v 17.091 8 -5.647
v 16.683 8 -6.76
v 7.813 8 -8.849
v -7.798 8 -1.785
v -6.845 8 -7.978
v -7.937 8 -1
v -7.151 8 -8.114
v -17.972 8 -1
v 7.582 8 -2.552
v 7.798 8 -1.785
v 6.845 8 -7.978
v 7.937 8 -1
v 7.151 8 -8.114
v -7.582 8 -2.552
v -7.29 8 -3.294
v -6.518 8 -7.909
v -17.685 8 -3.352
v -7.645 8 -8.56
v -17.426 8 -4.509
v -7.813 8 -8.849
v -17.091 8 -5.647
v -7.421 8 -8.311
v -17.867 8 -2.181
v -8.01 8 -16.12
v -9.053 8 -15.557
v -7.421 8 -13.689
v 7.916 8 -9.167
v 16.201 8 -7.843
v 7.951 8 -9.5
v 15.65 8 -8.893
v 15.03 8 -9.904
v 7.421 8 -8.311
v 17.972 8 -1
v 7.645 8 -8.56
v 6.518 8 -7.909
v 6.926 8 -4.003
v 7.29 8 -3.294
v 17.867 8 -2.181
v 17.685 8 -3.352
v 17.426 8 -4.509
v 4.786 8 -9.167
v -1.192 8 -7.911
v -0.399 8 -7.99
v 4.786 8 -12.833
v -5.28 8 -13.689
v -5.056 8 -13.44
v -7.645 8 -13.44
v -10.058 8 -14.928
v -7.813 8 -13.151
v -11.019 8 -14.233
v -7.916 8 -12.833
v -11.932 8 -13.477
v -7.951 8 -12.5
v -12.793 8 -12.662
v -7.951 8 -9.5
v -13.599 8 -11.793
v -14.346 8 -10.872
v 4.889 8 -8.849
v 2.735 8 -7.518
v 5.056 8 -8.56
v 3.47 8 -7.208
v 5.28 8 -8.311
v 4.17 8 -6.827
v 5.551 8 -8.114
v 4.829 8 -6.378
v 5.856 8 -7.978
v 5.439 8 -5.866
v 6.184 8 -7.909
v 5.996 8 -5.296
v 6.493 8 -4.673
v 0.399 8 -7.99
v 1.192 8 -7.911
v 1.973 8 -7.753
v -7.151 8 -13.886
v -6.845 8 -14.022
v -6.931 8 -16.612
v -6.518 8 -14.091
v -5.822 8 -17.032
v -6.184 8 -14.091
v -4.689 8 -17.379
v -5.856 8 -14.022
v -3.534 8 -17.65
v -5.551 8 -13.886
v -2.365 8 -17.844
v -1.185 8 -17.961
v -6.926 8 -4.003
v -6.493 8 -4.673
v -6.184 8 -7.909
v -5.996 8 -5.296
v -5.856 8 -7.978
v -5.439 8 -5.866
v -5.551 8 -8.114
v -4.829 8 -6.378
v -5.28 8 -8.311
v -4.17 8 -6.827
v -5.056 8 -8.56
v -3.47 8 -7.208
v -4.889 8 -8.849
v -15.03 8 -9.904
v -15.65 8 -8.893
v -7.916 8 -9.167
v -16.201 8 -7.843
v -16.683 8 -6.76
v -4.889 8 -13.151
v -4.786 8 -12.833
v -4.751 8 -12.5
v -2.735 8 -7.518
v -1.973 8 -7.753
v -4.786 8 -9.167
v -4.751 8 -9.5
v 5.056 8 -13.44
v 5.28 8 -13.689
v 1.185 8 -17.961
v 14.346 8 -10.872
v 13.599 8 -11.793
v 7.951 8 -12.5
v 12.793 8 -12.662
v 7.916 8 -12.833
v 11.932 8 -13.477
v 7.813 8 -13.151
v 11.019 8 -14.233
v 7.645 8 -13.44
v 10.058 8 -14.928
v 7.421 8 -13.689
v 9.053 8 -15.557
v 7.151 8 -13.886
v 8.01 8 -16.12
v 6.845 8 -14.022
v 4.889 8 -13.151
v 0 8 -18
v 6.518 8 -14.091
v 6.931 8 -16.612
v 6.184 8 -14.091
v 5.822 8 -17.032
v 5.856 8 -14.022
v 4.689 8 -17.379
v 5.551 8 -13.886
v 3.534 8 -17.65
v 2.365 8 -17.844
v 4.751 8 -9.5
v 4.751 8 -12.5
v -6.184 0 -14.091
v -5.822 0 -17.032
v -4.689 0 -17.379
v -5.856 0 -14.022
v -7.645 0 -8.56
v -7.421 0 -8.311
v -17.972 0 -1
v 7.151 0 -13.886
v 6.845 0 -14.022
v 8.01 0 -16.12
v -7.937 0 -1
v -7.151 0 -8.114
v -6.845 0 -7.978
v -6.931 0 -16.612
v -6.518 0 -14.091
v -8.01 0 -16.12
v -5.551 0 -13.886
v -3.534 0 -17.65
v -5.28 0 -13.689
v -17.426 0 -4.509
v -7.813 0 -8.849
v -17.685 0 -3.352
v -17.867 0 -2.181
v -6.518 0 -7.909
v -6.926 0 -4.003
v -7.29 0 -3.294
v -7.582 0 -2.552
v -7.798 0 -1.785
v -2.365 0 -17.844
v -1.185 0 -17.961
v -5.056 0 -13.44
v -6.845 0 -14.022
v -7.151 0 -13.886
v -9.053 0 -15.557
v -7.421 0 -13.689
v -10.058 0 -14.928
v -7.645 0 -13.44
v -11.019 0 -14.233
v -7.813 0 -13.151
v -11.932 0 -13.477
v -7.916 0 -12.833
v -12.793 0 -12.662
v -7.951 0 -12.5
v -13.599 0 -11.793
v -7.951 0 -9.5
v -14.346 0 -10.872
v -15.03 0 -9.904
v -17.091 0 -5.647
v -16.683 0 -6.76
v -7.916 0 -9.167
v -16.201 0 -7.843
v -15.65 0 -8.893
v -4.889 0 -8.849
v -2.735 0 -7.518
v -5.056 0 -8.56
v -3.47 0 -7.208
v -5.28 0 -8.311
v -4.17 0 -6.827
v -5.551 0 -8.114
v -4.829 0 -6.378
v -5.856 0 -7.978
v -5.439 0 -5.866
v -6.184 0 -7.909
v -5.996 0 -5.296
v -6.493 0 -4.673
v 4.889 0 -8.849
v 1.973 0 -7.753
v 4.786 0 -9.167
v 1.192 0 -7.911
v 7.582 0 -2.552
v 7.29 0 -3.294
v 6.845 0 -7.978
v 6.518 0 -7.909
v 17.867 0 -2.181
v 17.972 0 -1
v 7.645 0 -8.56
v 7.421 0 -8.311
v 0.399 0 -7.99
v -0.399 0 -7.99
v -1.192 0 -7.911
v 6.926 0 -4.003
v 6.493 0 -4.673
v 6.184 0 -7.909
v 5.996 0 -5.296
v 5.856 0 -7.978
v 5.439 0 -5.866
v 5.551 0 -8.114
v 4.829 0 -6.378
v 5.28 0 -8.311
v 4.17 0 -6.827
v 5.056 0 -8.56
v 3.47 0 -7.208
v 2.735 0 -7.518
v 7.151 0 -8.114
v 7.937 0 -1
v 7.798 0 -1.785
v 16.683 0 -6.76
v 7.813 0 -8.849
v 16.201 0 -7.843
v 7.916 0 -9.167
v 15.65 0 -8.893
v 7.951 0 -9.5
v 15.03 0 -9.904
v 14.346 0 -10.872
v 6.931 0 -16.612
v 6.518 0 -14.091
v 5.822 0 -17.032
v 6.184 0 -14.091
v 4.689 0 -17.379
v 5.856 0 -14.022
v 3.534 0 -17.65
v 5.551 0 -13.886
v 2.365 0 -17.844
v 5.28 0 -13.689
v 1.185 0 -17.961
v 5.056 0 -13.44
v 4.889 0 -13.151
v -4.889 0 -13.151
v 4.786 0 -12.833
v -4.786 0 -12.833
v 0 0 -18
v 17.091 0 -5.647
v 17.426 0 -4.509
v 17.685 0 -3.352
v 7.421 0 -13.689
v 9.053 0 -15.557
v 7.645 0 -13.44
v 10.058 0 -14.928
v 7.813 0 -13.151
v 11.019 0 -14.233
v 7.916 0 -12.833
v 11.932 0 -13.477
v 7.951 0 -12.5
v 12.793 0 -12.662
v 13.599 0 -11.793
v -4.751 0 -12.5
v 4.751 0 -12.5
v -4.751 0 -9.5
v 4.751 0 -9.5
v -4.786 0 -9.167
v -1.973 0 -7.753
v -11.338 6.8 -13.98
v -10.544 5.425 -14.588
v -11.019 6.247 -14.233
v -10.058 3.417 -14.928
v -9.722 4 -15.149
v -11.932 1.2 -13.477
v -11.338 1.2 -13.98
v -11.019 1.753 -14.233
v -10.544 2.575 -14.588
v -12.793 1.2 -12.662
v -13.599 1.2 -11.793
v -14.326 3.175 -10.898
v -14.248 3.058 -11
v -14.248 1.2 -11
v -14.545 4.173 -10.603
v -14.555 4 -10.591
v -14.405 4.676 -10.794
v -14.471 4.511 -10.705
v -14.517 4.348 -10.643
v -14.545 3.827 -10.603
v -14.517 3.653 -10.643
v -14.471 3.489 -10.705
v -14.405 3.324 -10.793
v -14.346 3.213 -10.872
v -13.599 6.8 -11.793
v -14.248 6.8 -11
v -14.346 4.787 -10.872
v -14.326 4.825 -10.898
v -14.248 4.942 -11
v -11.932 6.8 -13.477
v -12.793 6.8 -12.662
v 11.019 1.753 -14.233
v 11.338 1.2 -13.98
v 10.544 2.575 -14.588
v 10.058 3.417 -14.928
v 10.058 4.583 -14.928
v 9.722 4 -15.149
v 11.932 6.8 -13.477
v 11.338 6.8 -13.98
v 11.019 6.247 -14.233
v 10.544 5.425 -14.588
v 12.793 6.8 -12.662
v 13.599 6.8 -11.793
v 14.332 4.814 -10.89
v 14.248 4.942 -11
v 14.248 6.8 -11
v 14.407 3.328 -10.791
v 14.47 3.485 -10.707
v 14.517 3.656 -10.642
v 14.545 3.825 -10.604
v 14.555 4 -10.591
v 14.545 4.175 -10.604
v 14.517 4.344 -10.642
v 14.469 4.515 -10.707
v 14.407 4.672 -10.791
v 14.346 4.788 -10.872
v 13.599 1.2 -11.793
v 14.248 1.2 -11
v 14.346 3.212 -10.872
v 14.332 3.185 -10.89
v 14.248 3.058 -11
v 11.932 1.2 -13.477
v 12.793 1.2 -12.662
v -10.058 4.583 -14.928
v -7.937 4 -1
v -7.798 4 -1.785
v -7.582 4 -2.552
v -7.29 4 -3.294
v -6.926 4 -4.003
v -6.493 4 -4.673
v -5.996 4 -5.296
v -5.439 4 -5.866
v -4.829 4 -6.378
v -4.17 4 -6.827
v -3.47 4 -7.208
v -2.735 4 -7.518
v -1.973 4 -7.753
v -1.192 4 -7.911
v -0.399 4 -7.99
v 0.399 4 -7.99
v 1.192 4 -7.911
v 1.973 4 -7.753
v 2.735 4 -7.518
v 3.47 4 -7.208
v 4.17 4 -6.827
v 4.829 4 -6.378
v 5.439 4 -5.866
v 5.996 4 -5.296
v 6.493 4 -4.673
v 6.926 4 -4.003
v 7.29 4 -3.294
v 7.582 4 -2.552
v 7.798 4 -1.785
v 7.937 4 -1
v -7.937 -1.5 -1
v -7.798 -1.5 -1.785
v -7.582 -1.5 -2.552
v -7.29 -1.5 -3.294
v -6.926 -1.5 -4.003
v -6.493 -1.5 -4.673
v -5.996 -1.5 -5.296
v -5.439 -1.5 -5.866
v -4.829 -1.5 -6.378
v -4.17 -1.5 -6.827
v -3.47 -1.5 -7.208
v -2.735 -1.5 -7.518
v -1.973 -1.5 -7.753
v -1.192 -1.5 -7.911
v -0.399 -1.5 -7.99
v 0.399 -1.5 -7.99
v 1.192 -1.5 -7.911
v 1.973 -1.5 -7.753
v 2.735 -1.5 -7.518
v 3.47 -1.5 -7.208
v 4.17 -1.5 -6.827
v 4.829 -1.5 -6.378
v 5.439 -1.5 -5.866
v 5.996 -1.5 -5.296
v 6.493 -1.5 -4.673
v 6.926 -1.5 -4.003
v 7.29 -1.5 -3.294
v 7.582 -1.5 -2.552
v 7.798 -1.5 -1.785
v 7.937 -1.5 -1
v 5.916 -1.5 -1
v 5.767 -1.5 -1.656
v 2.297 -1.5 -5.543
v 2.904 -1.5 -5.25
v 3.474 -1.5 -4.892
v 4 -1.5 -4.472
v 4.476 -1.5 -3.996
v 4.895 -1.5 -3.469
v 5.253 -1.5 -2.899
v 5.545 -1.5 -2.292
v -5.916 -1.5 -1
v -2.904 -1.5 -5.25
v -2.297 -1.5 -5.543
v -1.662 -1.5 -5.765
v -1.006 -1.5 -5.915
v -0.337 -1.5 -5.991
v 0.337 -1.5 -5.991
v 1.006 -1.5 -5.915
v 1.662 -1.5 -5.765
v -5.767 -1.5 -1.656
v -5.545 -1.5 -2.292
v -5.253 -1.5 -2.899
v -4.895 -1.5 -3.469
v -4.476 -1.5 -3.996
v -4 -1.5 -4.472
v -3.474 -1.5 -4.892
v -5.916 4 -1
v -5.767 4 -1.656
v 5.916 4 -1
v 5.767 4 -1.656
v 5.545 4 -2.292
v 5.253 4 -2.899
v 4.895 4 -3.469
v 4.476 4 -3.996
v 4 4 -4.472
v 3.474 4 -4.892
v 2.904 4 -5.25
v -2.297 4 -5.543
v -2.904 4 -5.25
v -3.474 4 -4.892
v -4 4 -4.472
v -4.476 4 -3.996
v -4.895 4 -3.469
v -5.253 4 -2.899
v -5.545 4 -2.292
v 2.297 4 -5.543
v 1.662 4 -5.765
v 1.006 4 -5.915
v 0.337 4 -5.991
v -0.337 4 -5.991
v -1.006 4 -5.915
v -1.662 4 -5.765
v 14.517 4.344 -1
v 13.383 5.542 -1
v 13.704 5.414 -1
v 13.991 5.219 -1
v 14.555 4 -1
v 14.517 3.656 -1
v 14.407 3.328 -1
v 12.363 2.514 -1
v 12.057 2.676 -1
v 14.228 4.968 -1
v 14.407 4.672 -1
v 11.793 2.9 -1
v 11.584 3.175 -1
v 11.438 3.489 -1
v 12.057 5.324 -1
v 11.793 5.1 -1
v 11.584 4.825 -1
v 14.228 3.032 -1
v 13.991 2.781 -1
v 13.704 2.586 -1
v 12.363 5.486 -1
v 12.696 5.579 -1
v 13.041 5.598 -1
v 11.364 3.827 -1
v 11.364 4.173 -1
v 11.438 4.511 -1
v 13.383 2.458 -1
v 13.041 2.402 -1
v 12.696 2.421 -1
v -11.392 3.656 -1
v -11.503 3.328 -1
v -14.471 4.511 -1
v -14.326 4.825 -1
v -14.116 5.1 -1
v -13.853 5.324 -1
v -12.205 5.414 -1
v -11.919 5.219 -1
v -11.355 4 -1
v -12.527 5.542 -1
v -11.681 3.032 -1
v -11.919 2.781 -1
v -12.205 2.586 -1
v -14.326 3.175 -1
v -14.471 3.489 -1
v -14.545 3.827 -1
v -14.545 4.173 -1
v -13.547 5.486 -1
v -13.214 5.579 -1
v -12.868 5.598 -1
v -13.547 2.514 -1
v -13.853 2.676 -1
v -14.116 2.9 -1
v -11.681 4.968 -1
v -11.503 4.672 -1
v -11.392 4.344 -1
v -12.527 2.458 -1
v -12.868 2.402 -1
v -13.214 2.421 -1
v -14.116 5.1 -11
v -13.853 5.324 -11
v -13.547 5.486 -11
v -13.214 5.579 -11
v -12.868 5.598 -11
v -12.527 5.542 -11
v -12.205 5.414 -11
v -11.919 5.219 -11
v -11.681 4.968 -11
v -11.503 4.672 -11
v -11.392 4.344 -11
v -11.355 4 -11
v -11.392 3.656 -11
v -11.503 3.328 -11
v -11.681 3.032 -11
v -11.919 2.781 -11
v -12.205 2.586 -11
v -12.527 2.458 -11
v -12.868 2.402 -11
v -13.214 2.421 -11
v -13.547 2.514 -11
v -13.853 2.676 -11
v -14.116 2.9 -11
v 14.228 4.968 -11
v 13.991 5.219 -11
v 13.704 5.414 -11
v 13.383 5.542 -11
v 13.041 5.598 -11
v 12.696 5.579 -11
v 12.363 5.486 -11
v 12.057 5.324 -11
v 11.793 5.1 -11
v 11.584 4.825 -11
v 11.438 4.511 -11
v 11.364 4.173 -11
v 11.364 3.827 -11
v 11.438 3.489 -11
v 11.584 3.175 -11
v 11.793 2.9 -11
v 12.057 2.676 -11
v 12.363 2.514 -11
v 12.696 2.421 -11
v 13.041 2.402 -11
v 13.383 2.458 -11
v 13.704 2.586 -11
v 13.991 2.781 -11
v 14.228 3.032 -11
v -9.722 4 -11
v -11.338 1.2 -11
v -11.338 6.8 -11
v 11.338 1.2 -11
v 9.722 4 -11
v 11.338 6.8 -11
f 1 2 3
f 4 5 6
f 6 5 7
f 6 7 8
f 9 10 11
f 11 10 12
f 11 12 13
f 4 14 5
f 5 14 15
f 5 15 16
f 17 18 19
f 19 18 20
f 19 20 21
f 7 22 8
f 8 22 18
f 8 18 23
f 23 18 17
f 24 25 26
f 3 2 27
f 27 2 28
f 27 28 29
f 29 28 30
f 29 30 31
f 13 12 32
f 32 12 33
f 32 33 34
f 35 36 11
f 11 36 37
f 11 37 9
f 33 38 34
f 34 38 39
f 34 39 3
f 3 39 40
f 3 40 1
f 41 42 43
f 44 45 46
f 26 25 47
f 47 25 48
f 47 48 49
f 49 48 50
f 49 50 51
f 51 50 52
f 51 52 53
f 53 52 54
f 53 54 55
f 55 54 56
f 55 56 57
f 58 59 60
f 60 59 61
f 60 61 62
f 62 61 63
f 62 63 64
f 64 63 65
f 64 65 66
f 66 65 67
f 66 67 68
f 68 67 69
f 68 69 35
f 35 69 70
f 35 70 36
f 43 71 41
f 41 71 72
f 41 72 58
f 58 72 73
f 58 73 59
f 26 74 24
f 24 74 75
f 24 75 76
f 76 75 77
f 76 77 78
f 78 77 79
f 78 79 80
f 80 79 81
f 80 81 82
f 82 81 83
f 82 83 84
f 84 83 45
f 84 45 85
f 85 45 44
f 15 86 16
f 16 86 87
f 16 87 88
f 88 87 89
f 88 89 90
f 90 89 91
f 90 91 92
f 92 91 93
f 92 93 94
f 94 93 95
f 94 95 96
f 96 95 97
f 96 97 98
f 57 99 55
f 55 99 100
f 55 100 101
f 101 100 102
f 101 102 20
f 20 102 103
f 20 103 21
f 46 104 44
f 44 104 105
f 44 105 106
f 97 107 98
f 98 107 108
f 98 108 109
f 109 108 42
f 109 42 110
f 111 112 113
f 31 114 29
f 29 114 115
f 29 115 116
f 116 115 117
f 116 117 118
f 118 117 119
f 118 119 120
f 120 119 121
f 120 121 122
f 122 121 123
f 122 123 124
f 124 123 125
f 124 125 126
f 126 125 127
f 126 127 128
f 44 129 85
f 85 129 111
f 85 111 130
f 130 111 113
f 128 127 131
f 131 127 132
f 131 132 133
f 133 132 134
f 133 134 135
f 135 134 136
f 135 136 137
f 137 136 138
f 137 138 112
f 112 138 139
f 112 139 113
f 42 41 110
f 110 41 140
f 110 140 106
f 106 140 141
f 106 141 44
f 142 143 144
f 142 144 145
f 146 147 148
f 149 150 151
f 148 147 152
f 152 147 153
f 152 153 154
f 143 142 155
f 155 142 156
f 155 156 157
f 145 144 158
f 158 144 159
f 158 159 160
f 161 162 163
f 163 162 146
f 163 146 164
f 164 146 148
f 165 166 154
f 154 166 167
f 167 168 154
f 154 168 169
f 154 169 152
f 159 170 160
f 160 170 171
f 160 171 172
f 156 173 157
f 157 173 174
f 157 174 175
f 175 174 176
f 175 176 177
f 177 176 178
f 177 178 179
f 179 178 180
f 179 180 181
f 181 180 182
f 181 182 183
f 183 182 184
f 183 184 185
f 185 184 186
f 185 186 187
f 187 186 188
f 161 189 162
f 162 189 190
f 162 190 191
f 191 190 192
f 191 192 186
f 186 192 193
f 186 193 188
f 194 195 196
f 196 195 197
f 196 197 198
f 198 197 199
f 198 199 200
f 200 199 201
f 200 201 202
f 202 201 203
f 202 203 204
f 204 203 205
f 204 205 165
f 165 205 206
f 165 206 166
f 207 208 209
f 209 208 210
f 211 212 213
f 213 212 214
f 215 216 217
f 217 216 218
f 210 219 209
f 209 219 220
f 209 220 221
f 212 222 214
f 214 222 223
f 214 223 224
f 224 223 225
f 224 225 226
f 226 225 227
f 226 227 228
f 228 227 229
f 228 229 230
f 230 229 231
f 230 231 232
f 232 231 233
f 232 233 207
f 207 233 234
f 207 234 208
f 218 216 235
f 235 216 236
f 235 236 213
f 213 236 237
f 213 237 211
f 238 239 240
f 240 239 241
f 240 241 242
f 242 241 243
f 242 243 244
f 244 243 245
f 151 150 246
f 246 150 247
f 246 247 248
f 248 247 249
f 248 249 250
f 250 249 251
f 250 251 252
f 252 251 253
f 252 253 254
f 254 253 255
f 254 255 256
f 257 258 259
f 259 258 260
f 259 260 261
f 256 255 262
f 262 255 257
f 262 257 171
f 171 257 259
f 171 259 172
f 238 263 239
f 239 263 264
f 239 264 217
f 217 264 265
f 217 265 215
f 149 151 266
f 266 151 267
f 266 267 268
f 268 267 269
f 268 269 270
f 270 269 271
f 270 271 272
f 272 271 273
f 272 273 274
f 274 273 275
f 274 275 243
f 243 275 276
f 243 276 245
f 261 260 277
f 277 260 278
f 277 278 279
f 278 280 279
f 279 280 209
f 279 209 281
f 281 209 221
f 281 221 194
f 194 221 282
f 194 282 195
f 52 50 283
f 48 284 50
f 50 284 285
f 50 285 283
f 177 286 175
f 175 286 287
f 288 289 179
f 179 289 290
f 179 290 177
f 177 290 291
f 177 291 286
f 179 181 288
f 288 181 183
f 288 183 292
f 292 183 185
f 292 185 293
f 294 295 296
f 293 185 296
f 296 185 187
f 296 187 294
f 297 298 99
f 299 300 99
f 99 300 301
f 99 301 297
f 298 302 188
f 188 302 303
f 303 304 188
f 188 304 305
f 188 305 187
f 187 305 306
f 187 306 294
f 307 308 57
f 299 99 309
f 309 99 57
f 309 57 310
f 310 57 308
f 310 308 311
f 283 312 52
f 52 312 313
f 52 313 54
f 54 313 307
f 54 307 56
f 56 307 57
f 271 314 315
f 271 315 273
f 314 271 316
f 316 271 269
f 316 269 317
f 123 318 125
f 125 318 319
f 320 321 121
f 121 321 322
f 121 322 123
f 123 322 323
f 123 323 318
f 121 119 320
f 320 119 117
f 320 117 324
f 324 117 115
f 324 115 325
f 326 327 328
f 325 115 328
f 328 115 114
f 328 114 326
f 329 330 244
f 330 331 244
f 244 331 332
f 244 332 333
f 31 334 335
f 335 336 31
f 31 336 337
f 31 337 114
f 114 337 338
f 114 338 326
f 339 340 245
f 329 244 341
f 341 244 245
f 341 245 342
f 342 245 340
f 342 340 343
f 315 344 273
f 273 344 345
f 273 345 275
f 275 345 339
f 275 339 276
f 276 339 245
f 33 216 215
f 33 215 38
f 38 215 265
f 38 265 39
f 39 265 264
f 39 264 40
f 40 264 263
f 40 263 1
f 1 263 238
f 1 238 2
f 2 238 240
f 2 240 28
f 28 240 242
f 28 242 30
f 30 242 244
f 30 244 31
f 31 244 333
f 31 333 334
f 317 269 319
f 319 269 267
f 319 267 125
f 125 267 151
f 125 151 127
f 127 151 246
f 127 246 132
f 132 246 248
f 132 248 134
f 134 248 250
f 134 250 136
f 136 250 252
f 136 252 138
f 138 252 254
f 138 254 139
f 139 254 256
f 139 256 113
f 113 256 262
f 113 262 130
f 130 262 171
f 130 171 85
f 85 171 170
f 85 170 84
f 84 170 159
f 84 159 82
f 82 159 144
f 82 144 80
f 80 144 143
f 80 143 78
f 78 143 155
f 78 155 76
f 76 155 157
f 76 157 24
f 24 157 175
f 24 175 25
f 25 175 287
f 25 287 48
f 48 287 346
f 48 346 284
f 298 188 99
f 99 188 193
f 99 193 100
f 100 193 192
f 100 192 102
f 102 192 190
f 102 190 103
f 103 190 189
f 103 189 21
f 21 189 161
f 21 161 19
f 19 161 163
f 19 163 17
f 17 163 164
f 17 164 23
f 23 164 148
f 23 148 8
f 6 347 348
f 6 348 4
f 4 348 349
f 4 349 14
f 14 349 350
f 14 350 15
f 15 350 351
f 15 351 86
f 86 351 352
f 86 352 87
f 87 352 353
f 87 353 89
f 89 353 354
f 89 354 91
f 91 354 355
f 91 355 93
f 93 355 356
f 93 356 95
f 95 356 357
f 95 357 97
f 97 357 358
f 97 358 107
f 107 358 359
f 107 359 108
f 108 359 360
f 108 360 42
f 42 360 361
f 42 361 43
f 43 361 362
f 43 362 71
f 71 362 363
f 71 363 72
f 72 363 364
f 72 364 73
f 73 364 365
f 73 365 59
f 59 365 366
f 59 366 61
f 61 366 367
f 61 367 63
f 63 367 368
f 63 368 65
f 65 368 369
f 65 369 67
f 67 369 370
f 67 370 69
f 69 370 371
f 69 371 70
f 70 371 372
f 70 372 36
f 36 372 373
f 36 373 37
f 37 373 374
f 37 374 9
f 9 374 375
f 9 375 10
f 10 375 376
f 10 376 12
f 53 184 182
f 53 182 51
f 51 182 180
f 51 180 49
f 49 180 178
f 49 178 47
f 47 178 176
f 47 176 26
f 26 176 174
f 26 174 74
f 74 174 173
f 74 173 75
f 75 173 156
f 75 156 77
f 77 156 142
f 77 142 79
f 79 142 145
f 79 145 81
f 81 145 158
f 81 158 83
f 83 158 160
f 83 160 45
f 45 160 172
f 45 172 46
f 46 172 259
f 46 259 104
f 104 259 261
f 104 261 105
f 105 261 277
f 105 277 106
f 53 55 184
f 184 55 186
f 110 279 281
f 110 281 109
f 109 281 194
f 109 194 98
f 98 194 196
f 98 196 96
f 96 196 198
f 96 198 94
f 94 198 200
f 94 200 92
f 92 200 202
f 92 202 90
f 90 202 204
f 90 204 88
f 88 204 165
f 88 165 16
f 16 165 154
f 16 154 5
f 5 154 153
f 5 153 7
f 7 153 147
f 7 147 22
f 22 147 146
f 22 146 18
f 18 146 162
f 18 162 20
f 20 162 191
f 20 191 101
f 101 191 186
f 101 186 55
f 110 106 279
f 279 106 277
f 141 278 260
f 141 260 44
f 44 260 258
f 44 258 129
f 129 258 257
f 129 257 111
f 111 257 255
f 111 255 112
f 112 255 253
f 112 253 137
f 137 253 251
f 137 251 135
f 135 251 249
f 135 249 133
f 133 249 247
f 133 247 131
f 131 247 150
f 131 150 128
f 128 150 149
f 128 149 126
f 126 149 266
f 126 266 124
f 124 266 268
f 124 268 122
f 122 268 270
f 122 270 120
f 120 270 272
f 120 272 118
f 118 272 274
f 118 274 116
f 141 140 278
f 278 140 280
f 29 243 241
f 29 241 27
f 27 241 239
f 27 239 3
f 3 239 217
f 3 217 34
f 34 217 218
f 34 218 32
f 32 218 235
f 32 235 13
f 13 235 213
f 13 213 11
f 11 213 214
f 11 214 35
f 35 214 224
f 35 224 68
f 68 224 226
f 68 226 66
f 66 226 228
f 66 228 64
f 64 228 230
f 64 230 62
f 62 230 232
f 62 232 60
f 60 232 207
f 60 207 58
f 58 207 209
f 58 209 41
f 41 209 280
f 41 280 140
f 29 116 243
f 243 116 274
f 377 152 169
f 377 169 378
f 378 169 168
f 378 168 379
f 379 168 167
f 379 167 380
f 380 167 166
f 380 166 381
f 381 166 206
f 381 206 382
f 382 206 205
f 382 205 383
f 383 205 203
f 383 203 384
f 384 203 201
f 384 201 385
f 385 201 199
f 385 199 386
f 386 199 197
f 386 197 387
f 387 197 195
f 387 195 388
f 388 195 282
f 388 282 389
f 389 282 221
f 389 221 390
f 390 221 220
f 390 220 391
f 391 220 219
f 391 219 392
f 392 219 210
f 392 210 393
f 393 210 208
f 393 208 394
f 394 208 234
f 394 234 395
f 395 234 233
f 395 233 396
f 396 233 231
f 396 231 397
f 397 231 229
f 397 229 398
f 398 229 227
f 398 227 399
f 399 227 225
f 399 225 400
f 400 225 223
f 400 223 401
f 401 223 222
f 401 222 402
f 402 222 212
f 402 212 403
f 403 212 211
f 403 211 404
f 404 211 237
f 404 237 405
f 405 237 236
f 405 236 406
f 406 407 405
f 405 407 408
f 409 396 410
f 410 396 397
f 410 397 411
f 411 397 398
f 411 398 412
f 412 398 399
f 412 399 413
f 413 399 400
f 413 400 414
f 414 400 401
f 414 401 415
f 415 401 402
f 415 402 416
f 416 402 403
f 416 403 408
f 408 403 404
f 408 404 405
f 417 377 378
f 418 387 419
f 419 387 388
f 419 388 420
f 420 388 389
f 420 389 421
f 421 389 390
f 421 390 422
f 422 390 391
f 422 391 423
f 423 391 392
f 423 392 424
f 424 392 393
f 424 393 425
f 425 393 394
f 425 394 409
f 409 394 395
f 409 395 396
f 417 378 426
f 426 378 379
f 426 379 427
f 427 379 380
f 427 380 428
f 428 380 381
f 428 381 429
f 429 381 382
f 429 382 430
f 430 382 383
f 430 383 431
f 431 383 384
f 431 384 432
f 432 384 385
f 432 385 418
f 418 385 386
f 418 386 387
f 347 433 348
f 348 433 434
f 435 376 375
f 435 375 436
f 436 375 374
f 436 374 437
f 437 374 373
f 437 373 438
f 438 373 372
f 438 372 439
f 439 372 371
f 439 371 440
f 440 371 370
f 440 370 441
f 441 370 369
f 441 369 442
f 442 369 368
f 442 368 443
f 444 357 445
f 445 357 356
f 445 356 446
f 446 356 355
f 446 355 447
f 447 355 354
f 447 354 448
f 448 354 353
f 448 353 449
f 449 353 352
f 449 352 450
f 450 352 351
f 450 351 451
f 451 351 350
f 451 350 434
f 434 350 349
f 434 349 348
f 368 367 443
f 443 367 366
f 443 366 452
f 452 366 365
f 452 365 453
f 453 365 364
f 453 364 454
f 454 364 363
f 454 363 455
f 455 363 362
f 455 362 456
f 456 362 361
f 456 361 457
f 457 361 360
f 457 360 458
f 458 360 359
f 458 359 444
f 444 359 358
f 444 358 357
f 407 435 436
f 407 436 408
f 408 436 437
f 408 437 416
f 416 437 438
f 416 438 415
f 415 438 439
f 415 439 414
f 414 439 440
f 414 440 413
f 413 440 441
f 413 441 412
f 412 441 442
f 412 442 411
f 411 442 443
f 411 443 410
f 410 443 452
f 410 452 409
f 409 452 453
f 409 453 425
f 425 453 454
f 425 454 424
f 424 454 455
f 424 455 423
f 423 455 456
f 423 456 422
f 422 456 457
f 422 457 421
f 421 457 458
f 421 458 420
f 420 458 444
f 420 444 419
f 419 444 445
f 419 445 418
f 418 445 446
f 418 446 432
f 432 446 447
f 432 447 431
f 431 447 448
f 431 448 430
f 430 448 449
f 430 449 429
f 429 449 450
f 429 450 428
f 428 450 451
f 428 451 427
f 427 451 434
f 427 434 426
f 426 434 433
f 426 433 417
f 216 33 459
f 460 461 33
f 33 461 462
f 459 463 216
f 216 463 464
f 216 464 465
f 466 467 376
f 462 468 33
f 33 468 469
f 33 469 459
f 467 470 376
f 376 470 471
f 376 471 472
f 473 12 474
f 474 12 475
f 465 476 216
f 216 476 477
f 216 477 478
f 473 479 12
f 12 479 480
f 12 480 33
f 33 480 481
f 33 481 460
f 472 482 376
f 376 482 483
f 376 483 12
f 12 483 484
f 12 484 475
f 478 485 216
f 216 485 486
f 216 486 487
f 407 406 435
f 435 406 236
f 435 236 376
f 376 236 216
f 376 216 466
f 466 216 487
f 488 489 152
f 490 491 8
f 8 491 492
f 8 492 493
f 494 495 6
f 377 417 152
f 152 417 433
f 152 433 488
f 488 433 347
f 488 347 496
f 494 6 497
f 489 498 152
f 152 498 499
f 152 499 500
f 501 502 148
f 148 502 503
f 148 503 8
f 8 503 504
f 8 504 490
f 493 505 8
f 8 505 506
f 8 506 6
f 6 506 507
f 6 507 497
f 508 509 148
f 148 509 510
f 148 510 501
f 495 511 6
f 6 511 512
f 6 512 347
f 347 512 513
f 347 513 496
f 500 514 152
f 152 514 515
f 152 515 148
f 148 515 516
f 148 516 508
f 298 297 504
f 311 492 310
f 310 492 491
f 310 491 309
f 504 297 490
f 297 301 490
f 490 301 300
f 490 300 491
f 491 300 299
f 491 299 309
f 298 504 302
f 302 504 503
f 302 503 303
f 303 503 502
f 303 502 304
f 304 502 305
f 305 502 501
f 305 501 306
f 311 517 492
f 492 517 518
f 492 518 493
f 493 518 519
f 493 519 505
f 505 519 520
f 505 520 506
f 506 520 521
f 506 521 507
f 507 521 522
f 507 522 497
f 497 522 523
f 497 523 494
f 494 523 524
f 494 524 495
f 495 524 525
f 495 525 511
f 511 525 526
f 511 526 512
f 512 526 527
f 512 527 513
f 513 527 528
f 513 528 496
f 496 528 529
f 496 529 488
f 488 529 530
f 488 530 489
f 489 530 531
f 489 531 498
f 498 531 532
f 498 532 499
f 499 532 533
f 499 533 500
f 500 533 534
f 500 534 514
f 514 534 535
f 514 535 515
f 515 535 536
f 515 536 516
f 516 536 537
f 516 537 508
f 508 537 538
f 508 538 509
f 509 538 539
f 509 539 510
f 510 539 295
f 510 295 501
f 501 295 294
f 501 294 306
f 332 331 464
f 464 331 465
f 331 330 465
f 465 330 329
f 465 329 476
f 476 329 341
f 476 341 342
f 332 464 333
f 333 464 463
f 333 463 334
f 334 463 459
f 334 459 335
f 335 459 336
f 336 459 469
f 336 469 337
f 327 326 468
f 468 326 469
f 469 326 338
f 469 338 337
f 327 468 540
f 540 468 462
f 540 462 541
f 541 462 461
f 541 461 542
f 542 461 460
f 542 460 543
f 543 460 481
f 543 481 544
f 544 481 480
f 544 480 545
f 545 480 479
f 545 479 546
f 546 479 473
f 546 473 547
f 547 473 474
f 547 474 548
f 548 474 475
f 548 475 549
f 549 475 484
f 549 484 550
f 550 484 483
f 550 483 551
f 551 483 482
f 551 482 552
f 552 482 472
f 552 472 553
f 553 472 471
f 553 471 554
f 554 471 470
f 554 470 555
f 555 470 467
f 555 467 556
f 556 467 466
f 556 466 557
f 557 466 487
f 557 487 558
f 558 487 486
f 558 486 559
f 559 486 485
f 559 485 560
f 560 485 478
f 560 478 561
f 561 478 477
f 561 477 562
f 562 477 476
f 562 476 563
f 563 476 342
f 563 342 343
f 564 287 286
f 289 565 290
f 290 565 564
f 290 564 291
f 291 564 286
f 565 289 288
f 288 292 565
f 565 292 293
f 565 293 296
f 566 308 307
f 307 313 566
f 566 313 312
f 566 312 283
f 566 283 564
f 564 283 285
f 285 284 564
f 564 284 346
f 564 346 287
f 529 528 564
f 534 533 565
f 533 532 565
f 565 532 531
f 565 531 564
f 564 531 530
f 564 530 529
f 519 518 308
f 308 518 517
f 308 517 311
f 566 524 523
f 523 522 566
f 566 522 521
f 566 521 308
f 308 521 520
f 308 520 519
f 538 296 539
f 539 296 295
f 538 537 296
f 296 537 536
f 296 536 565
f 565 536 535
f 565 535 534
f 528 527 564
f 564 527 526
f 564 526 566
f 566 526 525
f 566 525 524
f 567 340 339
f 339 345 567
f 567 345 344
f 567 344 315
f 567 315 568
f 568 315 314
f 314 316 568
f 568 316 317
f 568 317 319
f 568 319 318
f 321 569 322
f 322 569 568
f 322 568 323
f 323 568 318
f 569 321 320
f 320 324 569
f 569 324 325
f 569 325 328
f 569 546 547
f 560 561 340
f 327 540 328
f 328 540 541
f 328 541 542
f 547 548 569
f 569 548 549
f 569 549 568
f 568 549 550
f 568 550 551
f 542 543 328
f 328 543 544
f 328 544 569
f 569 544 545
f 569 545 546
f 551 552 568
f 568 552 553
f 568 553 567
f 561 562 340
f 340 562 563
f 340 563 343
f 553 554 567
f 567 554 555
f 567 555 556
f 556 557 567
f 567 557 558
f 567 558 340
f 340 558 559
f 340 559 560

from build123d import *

# Parameters (mm, degrees)
SKETCH1_R           = 18
SKETCH1_R_2         = 8
BOSS_EXTRUDE1_DEPTH = 8
SKETCH2_R           = 8
SKETCH2_R_2         = 6
BOSS_EXTRUDE2_DEPTH = 5.5
SKETCH3_W           = 40
SKETCH3_H           = 20
CUT_EXTRUDE1_DEPTH  = 10.5
CUT_EXTRUDE2_REACH  = 19
SKETCH5_R           = 1.6
CUT_EXTRUDE3_REACH  = 29
CUT_EXTRUDE3_START  = -10


with BuildPart() as part:
    # Sketch1 → Boss-Extrude1 (new body)
    with BuildSketch(Plane(origin=(0, 0, 0), x_dir=(1, 0, 0), z_dir=(0, 1, 0))):
        Circle(SKETCH1_R)
        Circle(SKETCH1_R_2, mode=Mode.SUBTRACT)
        with BuildLine():
            Line((-7.950852961, 12.5), (-7.950852961, 9.5))
            ThreePointArc((-7.950852961, 9.5), (-6.350852961, 7.9), (-4.750852961, 9.5))
            Line((-4.750852961, 9.5), (-4.750852961, 12.5))
            ThreePointArc((-4.750852961, 12.5), (-6.350852961, 14.1), (-7.950852961, 12.5))
        make_face(mode=Mode.SUBTRACT)
        with BuildLine():
            Line((4.750852961, 12.5), (4.750852961, 9.5))
            ThreePointArc((4.750852961, 9.5), (6.350852961, 7.9), (7.950852961, 9.5))
            Line((7.950852961, 9.5), (7.950852961, 12.5))
            ThreePointArc((7.950852961, 12.5), (6.350852961, 14.1), (4.750852961, 12.5))
        make_face(mode=Mode.SUBTRACT)
    extrude(amount=BOSS_EXTRUDE1_DEPTH)

    # Sketch2 → Boss-Extrude2 (add)
    with BuildSketch(Plane(origin=(0, 4, 0), x_dir=(1, 0, 0), z_dir=(0, 1, 0))):
        Circle(SKETCH2_R)
        Circle(SKETCH2_R_2, mode=Mode.SUBTRACT)
    extrude(amount=-BOSS_EXTRUDE2_DEPTH)

    # Sketch3 → Cut-Extrude1 (cut, through all)
    with BuildSketch(Plane(origin=(0, 8, 0), x_dir=(1, 0, 0), z_dir=(0, 1, 0))):
        with Locations((0, -9)):
            Rectangle(SKETCH3_W, SKETCH3_H)
    extrude(amount=-CUT_EXTRUDE1_DEPTH, mode=Mode.SUBTRACT)

    # Sketch5 → Cut-Extrude2 (cut, up to next)
    with BuildSketch(Plane.XY.offset(-1), mode=Mode.PRIVATE) as cut_extrude2_sk1:
        with Locations((-12.954727344, 4)):
            Circle(SKETCH5_R)
    cut_extrude2_tool1 = extrude(cut_extrude2_sk1.sketch, amount=-CUT_EXTRUDE2_REACH, mode=Mode.PRIVATE) & part.part
    add(cut_extrude2_tool1.solids().sort_by_distance((-12.954727, 4, -1))[0], mode=Mode.SUBTRACT)
    # Sketch5 → Cut-Extrude2 (cut, up to next)
    with BuildSketch(Plane.XY.offset(-1), mode=Mode.PRIVATE) as cut_extrude2_sk2:
        with Locations((12.954727344, 4)):
            Circle(SKETCH5_R)
    cut_extrude2_tool2 = extrude(cut_extrude2_sk2.sketch, amount=-CUT_EXTRUDE2_REACH, mode=Mode.PRIVATE) & part.part
    add(cut_extrude2_tool2.solids().sort_by_distance((12.954727, 4, -1))[0], mode=Mode.SUBTRACT)

    # Sketch6 → Cut-Extrude3 (cut, up to next)
    with BuildSketch(Plane.XY.offset(-1).offset(CUT_EXTRUDE3_START), mode=Mode.PRIVATE) as cut_extrude3_sk1:
        Polygon((-9.721565837, 4), (-11.338146591, 6.8), (-14.571308098, 6.8), (-16.187888852, 4), (-14.571308098, 1.2), (-11.338146591, 1.2), align=None)
    cut_extrude3_tool1 = extrude(cut_extrude3_sk1.sketch, amount=-CUT_EXTRUDE3_REACH, mode=Mode.PRIVATE) & part.part
    add(cut_extrude3_tool1.solids().sort_by_distance((-12.954727, 4, -11))[0], mode=Mode.SUBTRACT)
    # Sketch6 → Cut-Extrude3 (cut, up to next)
    with BuildSketch(Plane.XY.offset(-1).offset(CUT_EXTRUDE3_START), mode=Mode.PRIVATE) as cut_extrude3_sk2:
        Polygon((16.187888852, 4), (14.571308098, 6.8), (11.338146591, 6.8), (9.721565837, 4), (11.338146591, 1.2), (14.571308098, 1.2), align=None)
    cut_extrude3_tool2 = extrude(cut_extrude3_sk2.sketch, amount=-CUT_EXTRUDE3_REACH, mode=Mode.PRIVATE) & part.part
    add(cut_extrude3_tool2.solids().sort_by_distance((12.954727, 4, -11))[0], mode=Mode.SUBTRACT)


solid = part.part
